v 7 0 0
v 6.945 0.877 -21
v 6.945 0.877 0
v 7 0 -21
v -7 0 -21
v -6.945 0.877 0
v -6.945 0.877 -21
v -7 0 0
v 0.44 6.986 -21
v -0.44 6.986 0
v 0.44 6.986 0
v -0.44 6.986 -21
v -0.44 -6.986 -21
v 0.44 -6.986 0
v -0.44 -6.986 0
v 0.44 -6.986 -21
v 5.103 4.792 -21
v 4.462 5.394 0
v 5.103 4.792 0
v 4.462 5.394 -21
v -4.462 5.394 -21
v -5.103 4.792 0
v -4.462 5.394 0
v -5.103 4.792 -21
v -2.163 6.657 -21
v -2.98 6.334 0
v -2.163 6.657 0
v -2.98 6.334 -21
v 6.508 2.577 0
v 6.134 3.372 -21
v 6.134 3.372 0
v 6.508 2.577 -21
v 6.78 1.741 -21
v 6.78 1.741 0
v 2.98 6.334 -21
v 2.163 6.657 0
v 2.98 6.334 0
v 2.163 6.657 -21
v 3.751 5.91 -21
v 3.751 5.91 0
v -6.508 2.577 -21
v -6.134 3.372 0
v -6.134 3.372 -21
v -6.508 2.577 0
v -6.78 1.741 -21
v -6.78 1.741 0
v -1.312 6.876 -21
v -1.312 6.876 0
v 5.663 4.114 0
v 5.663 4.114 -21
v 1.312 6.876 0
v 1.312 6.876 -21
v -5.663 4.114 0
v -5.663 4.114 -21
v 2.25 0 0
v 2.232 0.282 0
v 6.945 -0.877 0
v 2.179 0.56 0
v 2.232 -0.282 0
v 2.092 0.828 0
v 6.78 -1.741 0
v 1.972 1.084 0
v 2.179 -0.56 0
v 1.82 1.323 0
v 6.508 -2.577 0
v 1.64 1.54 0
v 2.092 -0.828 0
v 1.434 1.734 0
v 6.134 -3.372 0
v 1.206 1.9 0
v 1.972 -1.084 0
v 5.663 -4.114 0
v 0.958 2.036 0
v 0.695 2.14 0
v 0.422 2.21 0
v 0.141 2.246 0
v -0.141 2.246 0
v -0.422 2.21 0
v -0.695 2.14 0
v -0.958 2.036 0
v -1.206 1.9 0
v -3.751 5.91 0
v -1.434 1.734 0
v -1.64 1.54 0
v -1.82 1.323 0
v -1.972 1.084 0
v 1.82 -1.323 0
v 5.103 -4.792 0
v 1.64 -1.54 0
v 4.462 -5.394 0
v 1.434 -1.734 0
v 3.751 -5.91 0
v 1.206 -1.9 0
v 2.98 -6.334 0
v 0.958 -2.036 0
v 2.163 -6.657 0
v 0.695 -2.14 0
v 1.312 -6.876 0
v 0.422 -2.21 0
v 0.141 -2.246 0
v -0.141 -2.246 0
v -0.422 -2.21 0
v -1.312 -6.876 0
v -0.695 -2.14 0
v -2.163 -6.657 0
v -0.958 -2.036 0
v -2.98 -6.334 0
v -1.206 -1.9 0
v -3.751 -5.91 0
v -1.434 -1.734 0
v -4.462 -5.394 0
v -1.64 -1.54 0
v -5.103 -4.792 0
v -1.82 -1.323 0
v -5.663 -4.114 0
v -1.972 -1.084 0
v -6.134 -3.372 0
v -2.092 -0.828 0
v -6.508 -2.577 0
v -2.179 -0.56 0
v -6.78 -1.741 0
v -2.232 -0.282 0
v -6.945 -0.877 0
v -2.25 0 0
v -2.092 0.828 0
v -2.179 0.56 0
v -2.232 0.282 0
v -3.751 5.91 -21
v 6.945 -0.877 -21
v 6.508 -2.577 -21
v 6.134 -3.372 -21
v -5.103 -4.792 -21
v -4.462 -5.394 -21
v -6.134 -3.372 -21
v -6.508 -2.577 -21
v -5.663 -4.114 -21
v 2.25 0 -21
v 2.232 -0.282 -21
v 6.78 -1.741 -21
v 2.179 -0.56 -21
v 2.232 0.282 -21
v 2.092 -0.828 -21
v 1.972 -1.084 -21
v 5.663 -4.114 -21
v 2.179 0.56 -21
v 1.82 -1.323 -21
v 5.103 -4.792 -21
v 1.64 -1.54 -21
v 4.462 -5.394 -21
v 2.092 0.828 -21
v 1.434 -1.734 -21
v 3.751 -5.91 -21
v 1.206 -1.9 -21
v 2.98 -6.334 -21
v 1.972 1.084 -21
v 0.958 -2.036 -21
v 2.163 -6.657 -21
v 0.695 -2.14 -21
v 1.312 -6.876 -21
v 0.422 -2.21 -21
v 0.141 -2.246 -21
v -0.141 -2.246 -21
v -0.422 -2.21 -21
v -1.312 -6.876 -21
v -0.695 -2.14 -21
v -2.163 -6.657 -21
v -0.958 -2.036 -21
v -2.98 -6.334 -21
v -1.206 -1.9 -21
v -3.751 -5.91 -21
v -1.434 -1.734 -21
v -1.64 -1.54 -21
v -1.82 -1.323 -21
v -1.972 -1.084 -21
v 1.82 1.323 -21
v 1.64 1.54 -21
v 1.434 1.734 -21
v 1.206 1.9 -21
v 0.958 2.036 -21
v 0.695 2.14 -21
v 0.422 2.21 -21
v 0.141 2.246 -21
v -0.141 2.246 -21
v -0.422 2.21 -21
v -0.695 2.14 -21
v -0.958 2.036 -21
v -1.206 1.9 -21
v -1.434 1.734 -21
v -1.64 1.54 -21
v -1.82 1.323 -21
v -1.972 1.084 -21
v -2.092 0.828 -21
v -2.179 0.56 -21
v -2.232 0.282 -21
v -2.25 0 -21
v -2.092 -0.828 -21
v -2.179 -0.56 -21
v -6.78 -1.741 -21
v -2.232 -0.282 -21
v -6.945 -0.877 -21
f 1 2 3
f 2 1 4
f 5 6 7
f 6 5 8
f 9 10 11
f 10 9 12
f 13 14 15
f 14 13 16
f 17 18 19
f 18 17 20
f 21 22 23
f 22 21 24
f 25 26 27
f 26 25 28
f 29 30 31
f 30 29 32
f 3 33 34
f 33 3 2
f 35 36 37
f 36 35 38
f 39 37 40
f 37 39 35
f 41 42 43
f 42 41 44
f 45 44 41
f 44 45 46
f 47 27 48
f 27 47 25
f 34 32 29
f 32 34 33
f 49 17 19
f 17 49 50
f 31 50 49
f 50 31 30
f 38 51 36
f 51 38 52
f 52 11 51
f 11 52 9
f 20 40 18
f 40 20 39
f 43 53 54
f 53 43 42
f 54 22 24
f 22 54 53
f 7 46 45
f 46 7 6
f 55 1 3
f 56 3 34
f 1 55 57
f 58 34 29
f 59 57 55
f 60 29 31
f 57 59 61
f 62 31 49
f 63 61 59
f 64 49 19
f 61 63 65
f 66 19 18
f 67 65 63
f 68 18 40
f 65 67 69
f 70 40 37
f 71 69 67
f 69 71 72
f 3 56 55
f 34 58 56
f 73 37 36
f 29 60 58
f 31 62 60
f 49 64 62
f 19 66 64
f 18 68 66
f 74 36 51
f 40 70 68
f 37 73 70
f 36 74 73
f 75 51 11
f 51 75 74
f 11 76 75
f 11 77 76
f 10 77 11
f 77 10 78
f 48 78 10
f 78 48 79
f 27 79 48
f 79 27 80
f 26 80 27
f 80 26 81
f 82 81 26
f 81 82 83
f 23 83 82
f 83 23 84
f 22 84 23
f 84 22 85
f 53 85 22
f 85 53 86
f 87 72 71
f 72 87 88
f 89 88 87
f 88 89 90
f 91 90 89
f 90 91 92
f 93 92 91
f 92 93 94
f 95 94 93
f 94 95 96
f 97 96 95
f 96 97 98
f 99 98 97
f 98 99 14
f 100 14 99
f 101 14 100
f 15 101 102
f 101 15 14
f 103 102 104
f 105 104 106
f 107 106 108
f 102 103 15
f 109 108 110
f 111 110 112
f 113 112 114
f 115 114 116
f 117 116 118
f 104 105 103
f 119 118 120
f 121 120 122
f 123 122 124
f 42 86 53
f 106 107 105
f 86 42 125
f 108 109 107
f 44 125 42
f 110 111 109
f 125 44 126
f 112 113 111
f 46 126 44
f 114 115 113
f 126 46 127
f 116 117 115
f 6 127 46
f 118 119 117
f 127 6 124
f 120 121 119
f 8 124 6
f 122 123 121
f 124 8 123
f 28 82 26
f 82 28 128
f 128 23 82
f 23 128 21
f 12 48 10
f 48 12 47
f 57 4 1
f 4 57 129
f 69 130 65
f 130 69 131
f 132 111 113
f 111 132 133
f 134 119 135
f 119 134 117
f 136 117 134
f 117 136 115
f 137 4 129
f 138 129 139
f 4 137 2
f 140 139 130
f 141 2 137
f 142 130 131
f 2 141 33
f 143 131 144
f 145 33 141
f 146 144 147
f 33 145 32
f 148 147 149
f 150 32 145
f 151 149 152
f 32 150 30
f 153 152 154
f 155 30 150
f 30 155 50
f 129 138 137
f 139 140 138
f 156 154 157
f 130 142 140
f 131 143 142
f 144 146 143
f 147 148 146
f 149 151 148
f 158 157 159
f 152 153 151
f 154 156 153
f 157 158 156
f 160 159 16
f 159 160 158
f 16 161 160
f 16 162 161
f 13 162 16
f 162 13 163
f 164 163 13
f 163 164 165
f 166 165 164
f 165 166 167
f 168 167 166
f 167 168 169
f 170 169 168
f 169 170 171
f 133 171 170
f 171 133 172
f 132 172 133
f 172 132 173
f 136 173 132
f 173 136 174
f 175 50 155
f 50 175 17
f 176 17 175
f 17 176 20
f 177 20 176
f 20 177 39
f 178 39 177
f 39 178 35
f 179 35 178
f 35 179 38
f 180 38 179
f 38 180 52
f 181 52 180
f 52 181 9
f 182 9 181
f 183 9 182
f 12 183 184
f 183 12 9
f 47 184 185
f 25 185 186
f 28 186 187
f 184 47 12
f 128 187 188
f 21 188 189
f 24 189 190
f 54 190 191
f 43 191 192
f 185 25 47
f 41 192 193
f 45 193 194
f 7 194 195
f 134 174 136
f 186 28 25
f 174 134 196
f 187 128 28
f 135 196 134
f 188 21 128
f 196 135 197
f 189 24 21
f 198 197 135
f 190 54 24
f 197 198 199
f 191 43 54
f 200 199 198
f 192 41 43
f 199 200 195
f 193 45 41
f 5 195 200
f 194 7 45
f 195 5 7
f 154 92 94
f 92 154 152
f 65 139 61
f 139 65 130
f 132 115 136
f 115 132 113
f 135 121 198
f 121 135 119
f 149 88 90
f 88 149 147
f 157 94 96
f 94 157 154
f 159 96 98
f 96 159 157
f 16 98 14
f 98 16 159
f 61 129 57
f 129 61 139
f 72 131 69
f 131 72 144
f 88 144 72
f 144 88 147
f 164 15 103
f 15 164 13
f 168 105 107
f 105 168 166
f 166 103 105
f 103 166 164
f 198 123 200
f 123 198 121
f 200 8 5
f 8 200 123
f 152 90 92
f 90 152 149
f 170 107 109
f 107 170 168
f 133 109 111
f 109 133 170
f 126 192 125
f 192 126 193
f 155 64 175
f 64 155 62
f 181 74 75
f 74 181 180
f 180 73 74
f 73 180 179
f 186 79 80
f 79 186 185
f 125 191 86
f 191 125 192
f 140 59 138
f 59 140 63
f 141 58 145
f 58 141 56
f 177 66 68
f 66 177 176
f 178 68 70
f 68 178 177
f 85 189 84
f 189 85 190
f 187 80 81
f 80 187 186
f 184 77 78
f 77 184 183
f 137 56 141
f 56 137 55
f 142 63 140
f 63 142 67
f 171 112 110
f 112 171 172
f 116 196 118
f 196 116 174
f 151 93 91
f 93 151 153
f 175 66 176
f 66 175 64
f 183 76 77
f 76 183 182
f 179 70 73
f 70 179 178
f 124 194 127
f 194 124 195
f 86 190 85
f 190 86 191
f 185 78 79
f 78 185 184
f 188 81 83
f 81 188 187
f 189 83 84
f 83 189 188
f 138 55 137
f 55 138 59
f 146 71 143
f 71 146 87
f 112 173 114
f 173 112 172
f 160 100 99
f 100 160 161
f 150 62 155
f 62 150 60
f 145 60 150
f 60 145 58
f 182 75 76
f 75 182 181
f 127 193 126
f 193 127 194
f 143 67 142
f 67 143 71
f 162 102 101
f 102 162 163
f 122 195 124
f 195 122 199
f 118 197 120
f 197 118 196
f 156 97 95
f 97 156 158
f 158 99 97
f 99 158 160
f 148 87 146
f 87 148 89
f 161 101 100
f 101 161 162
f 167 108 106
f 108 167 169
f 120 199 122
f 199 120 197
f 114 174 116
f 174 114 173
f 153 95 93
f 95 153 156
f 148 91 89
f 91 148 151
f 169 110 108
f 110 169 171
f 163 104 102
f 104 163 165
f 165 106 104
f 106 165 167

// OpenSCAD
$fn = 50;


difference() {
	union() {
		translate(v = [0, 0, -21.0000000000]) {
			cylinder(h = 21, r = 7.0000000000);
		}
		cylinder(h = 0, r = 13.0000000000);
	}
	union() {
		#translate(v = [0, 0, -21]) {
			cylinder(h = 21, r = 2.2500000000);
		}
	}
}
